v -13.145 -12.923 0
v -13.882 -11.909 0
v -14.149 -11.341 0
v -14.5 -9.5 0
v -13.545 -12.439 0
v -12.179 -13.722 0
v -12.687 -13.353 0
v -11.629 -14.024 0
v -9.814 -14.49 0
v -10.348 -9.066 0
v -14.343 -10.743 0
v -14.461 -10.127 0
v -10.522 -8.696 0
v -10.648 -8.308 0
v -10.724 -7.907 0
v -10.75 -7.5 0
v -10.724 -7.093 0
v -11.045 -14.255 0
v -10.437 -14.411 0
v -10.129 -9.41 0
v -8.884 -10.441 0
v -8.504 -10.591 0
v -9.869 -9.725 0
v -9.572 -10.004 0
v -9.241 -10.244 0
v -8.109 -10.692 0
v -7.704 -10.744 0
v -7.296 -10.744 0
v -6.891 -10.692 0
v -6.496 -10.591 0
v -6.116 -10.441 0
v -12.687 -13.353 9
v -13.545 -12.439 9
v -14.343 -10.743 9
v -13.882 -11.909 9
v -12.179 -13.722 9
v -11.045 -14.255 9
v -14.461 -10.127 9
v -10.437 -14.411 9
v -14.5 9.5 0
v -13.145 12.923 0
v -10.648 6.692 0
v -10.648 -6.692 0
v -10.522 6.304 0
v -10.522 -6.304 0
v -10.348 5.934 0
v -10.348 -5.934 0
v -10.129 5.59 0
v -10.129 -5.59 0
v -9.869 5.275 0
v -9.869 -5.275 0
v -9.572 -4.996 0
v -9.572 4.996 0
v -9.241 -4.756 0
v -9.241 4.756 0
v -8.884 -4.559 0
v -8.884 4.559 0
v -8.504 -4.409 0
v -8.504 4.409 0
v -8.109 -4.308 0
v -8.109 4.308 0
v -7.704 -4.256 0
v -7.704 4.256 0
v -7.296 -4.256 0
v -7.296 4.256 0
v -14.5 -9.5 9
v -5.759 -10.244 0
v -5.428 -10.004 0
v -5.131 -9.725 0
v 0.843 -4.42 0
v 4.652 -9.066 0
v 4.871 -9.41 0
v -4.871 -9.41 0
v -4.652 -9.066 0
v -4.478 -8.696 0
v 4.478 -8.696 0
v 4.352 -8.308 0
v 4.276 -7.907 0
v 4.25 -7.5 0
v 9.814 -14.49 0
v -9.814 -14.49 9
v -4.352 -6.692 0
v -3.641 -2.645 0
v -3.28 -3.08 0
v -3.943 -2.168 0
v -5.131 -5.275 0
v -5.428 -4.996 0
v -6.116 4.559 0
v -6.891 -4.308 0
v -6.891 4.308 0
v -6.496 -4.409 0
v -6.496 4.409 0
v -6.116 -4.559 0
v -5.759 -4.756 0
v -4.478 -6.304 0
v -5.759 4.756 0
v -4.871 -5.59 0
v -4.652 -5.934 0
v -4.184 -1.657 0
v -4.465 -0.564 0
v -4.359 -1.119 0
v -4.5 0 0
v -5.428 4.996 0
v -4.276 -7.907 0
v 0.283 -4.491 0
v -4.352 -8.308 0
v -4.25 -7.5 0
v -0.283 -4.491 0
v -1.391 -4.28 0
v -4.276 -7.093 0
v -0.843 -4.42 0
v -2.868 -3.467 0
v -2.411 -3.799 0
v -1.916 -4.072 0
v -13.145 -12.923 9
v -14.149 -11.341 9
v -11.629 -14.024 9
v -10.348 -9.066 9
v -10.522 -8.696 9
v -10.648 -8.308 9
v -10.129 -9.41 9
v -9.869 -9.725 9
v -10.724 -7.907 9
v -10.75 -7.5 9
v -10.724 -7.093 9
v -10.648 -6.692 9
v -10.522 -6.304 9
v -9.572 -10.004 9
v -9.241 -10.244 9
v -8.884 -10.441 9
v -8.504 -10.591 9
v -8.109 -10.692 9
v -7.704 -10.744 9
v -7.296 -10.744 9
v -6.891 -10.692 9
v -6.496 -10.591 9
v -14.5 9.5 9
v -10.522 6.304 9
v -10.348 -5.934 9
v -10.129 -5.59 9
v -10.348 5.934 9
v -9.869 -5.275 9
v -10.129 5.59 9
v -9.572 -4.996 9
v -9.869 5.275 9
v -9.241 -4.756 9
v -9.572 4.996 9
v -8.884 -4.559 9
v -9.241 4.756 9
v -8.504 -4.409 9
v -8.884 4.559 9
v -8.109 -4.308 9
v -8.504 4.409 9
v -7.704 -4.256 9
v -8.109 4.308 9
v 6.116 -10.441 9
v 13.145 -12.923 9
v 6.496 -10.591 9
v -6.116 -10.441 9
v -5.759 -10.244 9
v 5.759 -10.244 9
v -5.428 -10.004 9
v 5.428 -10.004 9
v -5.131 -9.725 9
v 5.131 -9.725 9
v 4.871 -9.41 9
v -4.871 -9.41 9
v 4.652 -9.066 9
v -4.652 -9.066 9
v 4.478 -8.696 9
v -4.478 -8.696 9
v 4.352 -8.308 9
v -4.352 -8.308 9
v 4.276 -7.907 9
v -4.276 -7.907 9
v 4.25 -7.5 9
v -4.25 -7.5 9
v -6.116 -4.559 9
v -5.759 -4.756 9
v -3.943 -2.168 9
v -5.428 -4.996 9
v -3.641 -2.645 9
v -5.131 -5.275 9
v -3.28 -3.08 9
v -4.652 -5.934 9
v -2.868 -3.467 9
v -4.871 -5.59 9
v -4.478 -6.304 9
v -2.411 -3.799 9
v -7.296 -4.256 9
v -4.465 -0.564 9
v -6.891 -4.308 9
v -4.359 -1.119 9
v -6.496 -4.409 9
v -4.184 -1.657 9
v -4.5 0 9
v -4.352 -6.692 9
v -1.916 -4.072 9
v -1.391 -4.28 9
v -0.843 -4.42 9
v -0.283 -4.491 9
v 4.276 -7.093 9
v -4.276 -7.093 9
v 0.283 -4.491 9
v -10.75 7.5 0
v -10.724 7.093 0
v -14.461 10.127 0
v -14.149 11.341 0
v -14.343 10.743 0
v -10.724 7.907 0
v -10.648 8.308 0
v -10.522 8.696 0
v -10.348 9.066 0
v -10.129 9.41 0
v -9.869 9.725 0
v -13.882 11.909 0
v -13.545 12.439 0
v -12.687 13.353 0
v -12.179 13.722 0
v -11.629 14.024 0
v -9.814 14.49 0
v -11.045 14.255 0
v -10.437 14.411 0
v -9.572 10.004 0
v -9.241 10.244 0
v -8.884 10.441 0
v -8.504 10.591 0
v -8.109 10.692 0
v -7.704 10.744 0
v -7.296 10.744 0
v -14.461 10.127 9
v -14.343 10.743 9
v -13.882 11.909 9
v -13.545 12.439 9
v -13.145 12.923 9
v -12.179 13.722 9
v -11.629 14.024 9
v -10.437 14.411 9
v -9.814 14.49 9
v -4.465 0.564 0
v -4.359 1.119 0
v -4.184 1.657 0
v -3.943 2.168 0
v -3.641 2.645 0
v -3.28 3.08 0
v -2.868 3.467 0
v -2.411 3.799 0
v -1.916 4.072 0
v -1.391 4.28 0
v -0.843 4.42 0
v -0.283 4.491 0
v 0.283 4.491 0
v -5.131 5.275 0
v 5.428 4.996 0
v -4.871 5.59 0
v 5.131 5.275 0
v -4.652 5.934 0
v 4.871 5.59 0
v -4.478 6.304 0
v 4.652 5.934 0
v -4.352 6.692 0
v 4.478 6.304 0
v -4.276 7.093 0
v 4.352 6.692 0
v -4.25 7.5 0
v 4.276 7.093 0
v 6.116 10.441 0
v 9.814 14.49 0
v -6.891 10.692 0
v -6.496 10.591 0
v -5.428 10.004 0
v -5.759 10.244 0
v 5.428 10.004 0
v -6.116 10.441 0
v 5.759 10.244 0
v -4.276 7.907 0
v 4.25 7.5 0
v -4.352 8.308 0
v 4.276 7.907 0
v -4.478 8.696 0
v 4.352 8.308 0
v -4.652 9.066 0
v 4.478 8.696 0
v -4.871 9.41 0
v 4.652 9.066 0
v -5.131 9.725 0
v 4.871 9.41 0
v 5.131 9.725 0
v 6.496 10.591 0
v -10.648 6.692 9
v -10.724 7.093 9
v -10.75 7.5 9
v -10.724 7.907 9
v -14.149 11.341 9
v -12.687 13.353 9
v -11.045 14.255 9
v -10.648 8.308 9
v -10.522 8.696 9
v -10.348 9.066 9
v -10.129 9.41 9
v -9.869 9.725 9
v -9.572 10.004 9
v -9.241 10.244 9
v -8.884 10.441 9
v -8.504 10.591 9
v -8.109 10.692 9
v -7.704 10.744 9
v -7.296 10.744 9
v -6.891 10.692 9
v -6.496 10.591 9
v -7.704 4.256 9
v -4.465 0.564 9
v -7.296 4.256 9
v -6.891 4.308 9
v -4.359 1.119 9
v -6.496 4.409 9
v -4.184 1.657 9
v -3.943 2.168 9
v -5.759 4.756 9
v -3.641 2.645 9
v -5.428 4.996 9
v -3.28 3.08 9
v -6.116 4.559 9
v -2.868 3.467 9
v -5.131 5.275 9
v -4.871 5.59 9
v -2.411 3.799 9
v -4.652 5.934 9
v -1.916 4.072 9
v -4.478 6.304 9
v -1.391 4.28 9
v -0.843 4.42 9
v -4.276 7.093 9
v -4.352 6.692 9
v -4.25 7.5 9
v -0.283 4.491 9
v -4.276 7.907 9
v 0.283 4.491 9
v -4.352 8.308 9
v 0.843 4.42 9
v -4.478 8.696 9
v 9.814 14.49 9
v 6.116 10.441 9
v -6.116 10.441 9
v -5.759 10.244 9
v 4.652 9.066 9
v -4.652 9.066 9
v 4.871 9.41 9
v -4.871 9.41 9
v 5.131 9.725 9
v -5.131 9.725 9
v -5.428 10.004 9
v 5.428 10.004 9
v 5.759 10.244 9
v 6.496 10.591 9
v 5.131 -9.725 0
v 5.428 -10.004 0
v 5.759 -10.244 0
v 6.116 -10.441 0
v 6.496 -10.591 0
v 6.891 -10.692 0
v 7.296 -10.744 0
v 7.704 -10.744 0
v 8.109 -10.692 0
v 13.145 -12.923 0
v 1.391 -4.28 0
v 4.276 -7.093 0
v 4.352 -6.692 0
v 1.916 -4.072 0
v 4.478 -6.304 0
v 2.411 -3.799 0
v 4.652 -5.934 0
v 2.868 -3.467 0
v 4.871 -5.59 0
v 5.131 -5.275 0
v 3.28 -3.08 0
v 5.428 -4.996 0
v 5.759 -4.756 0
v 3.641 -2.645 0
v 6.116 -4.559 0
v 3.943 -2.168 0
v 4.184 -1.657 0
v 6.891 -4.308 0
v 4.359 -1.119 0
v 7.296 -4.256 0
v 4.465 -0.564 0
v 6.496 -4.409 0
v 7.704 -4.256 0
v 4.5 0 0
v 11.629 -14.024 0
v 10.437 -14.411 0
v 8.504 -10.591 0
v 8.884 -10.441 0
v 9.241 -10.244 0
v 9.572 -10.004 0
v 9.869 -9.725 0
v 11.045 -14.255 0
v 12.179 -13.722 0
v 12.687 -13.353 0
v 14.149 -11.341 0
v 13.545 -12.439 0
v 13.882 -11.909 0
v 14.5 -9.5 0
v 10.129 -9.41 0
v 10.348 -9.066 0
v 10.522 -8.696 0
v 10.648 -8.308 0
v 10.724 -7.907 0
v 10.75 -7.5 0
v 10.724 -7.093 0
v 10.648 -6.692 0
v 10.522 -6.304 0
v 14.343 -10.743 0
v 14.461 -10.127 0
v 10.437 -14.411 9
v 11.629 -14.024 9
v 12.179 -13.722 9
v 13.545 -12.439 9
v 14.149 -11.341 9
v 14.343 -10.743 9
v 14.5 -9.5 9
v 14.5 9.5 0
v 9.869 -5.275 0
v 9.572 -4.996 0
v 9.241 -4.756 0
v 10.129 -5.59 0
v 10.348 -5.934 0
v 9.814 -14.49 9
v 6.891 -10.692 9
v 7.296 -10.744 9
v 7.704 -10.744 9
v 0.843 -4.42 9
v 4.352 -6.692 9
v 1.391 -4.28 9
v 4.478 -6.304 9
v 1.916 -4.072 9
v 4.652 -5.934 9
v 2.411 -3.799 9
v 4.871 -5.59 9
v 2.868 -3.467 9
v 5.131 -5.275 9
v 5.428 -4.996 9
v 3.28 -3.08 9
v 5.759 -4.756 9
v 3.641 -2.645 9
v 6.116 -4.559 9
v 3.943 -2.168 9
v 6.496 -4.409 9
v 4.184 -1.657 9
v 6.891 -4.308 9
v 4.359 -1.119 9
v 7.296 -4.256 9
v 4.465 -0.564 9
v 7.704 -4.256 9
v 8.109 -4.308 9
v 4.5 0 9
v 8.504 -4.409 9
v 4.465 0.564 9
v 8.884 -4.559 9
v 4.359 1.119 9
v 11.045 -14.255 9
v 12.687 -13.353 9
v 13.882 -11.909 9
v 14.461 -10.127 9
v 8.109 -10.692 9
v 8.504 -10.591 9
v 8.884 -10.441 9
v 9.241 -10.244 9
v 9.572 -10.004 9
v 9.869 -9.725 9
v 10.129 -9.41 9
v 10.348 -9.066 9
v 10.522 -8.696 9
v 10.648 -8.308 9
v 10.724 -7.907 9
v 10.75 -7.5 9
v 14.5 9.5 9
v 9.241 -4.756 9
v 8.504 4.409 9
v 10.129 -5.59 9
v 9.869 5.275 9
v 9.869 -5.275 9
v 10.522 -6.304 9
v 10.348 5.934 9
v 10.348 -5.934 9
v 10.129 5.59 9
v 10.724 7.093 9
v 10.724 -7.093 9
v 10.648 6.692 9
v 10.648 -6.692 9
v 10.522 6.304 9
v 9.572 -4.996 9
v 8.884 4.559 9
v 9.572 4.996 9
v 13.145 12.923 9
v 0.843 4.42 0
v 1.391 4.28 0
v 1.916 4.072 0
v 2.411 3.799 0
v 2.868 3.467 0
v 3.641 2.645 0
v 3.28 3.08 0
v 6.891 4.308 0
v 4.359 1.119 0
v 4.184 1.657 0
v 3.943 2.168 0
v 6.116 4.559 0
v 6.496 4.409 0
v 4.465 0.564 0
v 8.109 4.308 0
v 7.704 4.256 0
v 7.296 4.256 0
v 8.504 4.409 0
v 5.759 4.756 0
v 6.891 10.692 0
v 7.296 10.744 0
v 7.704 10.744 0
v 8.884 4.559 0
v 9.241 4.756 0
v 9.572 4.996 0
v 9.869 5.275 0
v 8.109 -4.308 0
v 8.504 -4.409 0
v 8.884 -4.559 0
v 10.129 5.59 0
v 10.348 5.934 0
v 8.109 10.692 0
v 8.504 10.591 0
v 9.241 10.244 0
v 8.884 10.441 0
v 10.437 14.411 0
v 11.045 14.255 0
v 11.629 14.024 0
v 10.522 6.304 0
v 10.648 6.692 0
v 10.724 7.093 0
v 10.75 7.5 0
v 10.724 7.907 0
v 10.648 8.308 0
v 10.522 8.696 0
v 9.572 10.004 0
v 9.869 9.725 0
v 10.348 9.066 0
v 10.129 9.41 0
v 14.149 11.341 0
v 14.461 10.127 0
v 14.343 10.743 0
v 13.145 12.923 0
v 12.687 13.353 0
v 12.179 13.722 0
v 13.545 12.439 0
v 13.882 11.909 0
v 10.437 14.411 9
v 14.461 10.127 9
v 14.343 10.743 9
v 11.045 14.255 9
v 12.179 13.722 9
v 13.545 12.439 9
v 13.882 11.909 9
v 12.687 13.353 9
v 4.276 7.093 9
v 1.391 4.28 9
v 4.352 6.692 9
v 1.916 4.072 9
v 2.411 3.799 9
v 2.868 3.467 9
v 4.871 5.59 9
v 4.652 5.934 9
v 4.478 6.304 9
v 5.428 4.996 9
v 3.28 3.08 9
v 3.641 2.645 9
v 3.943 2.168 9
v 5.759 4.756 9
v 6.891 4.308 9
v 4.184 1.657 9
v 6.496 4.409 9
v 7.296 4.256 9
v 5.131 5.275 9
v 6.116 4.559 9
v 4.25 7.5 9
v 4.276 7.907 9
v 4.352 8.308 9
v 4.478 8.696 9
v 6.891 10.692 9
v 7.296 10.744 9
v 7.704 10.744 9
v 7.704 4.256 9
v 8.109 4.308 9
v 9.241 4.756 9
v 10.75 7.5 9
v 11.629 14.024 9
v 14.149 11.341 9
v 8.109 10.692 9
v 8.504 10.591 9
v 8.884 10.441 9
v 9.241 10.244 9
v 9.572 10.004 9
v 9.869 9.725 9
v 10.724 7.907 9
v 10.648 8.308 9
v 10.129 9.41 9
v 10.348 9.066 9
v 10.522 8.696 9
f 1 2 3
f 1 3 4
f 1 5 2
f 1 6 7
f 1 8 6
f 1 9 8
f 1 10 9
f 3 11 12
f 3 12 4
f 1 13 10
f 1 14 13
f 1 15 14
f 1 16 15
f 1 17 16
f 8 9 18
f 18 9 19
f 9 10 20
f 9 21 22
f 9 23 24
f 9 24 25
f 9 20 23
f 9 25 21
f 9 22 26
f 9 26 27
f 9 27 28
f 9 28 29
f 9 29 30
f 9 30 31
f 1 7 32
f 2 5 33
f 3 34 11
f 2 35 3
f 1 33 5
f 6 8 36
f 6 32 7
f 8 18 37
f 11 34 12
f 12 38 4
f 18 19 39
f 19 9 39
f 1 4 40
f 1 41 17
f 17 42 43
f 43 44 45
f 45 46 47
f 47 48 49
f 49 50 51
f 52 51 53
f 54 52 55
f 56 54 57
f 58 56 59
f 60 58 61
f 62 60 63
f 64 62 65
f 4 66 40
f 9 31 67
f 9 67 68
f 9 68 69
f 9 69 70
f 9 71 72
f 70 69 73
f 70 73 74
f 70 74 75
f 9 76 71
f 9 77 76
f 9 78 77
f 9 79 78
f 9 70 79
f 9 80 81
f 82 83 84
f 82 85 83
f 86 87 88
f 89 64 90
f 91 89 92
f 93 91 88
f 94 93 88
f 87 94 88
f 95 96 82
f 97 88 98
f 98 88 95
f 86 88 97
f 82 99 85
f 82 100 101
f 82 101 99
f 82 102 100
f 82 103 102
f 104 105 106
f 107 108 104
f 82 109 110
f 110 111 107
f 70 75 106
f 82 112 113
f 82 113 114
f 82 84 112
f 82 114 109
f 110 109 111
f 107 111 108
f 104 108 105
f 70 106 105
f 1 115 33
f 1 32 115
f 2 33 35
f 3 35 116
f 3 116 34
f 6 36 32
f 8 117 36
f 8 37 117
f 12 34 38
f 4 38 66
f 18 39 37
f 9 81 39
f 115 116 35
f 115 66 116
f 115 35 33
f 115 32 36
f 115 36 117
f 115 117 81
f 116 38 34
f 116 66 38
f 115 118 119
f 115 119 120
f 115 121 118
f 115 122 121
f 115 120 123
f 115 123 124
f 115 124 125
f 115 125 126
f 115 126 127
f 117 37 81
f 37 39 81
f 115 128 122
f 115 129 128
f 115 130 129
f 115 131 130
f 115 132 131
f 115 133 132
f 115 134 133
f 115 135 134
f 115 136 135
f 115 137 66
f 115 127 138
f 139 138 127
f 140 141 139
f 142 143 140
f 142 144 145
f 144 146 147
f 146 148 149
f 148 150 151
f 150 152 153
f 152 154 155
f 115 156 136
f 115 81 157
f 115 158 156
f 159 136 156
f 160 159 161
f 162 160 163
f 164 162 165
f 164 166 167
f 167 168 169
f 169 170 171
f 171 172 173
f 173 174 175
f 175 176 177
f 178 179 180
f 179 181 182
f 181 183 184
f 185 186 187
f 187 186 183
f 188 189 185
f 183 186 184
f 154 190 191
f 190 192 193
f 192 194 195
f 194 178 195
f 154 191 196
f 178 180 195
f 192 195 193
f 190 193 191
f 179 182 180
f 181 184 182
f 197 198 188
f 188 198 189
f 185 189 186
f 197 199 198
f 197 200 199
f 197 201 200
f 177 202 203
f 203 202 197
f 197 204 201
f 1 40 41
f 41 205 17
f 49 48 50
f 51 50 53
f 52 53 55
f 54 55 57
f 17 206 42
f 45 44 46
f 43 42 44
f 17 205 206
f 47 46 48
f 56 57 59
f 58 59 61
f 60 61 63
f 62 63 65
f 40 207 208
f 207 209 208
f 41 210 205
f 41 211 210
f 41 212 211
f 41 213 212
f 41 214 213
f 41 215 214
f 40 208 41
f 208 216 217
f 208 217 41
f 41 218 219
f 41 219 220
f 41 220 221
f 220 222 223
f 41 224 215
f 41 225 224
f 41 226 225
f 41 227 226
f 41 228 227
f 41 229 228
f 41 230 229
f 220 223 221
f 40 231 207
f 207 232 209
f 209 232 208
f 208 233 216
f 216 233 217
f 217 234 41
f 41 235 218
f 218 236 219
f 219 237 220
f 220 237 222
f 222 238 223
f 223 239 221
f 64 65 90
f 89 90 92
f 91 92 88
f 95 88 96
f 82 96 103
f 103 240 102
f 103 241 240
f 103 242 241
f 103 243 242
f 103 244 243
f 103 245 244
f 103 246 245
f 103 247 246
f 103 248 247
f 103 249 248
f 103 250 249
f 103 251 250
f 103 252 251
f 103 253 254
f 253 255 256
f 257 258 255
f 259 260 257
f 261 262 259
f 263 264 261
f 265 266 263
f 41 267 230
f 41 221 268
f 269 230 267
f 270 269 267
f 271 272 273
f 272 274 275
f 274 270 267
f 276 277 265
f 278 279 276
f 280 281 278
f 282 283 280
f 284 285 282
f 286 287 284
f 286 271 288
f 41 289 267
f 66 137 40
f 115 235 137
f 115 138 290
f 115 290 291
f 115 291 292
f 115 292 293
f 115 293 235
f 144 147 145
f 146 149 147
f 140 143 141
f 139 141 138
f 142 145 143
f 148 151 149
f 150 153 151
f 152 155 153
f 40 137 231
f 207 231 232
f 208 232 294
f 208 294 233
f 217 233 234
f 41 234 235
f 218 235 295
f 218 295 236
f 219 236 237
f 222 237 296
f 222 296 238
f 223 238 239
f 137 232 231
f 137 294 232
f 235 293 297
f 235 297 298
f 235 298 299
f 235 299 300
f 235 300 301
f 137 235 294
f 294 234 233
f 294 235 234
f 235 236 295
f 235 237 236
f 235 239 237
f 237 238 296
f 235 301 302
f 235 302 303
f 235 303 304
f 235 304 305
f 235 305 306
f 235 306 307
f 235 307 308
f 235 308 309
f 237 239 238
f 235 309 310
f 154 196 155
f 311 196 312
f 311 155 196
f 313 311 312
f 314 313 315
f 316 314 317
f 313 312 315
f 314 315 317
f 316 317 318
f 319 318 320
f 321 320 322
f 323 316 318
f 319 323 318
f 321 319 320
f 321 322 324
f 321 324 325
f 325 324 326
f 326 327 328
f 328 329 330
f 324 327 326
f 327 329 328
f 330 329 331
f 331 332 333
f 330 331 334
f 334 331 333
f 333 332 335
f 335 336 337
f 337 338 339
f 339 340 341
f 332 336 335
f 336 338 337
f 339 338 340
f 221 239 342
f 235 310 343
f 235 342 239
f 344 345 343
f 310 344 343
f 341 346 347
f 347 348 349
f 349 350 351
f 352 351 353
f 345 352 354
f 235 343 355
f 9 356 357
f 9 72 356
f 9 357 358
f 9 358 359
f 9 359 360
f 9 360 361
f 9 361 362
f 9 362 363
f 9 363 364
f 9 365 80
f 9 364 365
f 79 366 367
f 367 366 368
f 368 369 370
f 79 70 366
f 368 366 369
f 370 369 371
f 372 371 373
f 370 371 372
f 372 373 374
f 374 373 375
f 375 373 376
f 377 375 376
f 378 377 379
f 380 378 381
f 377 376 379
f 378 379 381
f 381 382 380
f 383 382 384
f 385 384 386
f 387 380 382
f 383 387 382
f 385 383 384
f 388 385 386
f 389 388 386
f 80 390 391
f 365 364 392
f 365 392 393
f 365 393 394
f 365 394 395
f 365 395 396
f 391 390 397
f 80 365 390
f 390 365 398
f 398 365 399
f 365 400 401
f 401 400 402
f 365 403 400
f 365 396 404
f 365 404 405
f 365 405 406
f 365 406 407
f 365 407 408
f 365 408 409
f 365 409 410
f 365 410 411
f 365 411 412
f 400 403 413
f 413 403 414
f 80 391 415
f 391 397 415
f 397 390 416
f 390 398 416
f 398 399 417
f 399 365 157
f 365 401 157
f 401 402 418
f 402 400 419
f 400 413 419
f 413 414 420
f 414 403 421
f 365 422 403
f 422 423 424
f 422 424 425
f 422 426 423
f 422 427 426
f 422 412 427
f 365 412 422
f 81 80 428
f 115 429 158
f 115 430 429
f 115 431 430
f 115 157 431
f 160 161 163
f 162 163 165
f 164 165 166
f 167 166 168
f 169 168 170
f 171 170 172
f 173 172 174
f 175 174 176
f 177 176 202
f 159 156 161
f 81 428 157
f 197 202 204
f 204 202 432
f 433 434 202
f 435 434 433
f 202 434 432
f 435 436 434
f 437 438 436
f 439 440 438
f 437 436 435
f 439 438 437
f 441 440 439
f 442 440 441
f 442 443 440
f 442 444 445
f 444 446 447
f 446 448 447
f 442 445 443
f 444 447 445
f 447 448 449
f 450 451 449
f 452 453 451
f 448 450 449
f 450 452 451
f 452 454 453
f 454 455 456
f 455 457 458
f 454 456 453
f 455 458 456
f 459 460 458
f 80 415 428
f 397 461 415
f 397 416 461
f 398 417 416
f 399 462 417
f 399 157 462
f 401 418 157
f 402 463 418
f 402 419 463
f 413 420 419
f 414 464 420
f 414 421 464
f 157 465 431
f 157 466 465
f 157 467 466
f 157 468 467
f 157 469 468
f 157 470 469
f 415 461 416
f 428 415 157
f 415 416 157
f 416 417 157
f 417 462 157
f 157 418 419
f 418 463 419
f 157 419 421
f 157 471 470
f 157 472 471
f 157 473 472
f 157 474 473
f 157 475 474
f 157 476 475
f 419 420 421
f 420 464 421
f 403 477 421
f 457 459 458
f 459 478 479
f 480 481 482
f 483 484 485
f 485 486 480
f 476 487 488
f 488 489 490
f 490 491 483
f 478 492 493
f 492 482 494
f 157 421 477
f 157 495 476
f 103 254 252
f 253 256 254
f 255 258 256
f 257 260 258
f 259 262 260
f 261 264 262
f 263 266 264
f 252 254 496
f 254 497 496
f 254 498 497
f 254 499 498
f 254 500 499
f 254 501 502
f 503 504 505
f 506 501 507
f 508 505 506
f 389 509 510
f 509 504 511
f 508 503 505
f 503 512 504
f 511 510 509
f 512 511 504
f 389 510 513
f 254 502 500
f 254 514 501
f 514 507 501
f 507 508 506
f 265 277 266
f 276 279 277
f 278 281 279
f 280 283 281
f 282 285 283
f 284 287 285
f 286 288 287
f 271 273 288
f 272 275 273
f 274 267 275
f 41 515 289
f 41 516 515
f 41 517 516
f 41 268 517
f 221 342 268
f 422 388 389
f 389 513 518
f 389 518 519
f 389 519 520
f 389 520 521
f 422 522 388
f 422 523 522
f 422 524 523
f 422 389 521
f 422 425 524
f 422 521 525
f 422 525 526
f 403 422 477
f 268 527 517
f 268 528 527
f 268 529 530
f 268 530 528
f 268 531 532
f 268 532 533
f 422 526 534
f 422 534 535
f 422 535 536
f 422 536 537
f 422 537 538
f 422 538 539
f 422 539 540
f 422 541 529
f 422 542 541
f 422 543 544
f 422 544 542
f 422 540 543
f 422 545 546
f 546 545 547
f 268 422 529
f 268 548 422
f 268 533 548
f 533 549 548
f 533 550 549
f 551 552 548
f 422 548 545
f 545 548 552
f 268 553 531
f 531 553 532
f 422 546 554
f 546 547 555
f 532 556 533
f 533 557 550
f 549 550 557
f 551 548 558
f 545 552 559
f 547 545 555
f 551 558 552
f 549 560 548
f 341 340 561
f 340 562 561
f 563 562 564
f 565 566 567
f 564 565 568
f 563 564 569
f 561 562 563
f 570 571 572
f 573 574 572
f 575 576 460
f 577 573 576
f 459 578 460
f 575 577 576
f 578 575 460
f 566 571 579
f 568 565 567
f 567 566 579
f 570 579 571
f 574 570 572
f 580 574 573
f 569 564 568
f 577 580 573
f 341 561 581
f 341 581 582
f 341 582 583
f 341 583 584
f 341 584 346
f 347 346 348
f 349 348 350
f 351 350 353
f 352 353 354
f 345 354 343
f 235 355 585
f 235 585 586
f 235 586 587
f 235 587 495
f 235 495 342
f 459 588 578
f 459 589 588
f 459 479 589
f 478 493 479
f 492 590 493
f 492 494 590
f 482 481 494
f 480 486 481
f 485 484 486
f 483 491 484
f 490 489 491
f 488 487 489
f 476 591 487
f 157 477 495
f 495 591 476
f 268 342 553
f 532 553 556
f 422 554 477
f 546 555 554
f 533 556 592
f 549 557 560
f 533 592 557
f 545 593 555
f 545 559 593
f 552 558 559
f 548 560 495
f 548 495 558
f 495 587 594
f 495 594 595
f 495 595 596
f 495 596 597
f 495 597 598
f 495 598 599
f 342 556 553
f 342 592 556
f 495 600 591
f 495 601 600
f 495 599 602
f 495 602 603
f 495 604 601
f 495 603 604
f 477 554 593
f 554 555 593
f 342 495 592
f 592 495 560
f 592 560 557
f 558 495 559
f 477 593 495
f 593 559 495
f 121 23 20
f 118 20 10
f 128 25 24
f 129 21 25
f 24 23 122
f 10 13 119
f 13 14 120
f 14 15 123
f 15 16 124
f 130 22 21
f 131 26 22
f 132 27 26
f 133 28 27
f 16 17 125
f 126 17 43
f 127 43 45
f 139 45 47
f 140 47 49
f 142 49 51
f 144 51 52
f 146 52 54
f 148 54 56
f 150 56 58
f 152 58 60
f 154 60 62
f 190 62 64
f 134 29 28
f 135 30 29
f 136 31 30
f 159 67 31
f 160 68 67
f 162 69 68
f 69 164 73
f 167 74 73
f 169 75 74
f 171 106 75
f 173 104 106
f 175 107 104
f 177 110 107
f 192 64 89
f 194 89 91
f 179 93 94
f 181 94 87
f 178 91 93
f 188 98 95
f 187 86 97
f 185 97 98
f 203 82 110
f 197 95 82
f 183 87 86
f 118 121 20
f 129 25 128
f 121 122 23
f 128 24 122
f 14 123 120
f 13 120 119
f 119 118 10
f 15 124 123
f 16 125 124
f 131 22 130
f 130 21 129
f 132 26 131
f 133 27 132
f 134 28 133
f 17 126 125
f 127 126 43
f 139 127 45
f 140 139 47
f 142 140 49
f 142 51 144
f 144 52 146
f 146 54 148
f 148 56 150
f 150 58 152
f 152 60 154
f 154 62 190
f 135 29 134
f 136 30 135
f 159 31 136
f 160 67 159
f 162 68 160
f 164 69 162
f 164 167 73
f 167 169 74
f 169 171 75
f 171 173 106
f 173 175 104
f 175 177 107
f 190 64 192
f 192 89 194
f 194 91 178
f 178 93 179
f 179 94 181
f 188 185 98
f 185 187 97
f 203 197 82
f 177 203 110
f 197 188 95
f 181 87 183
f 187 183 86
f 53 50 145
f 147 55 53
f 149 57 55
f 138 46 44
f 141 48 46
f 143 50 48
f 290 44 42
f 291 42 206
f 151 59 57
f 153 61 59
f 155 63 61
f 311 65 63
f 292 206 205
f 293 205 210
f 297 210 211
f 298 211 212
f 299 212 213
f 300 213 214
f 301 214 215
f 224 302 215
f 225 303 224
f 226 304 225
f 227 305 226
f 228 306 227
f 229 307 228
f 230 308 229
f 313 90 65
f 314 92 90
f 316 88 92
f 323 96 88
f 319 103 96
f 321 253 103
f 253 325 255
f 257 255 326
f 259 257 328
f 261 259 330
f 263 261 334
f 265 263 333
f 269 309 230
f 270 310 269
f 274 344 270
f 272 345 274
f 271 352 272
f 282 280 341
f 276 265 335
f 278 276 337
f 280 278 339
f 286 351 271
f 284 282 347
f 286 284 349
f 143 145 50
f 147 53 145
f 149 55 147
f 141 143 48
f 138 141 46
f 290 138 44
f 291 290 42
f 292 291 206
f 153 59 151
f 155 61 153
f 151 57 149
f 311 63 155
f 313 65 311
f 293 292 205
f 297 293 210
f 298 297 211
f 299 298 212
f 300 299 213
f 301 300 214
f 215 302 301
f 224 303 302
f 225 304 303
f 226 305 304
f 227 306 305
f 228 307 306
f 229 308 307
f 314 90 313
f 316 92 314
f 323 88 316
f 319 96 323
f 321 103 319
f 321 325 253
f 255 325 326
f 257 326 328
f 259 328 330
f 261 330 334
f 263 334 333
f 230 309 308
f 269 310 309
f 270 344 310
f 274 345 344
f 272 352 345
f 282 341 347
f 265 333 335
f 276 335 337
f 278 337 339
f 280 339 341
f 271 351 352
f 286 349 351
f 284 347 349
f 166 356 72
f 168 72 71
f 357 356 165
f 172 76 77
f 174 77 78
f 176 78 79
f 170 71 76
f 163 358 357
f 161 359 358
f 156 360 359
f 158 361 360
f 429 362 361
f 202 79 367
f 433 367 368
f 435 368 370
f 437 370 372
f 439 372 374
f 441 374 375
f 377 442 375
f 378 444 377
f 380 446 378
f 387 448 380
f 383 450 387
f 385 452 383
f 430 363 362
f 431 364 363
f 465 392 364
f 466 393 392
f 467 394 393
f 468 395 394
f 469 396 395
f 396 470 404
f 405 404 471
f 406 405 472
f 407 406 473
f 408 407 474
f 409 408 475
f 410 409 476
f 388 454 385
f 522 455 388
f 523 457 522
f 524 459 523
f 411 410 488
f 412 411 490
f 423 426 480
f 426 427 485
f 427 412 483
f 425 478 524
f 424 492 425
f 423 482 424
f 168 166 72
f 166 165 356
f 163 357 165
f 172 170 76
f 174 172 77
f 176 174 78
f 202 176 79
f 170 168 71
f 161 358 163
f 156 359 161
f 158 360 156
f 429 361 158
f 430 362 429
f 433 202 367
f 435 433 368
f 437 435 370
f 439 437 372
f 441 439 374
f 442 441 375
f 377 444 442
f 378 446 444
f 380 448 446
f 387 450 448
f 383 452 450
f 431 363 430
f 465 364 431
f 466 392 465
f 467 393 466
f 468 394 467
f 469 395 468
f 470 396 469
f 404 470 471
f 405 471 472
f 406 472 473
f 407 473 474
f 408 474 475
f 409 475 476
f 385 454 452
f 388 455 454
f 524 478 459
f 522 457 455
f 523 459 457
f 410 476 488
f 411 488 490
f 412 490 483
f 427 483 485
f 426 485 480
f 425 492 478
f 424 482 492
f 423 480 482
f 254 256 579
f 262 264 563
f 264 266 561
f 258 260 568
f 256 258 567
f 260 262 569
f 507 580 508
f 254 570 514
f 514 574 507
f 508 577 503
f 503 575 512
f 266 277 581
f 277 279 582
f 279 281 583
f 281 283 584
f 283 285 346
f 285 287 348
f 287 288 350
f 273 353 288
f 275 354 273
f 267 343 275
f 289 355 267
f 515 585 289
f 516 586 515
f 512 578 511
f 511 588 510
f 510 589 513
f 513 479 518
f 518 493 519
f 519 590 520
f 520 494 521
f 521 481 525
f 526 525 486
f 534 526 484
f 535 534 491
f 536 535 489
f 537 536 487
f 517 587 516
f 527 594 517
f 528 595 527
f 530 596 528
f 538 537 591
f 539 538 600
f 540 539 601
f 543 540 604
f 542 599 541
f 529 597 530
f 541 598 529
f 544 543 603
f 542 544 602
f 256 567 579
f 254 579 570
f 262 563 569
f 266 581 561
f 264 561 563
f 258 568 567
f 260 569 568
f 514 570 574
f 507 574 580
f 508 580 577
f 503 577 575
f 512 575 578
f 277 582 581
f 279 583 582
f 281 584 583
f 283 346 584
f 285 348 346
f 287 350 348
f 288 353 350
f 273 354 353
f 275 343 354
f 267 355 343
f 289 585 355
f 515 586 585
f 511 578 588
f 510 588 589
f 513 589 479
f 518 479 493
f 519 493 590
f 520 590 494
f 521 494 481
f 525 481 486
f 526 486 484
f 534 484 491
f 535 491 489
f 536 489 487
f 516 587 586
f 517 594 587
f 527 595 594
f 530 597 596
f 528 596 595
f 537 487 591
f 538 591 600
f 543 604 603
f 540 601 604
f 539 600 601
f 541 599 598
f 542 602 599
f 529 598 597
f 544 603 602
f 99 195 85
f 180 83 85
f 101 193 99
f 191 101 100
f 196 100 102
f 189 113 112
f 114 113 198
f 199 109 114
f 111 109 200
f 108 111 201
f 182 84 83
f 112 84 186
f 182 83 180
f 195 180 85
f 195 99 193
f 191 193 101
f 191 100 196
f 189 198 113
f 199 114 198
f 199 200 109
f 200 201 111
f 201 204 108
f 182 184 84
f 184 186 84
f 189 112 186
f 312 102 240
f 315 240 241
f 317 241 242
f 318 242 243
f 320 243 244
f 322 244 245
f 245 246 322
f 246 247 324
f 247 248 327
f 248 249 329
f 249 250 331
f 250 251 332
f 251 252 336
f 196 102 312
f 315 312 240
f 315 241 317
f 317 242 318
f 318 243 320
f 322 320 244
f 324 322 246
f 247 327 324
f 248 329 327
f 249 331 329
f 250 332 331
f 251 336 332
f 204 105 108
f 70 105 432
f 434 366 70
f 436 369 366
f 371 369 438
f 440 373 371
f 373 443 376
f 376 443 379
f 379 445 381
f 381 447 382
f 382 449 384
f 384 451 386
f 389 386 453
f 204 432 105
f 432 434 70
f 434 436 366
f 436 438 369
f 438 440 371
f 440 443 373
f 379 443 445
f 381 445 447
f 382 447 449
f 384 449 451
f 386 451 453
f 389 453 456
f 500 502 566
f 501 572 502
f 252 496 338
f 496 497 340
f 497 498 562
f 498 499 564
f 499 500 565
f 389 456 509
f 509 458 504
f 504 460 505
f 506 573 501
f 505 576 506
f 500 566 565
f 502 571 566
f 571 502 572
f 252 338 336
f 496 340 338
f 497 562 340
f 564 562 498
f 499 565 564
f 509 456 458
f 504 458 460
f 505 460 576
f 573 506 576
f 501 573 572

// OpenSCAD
$fn = 50;

difference() {
	union() {
		hull() {
			translate(v = [-9.5, 9.5, 0]) {
				cylinder(h = 9, r = 5);
			}
			translate(v = [9.5, 9.5, 0]) {
				cylinder(h = 9, r = 5);
			}
			translate(v = [-9.5, -9.5, 0]) {
				cylinder(h = 9, r = 5);
			}
			translate(v = [9.5, -9.5, 0]) {
				cylinder(h = 9, r = 5);
			}
		}
	}
	union() {
		translate(v = [-7.5, -7.5, -100.0]) {
			cylinder(h = 200, r = 3.25);
		}
		translate(v = [-7.5, 7.5, -100.0]) {
			cylinder(h = 200, r = 3.25);
		}
		translate(v = [7.5, -7.5, -100.0]) {
			cylinder(h = 200, r = 3.25);
		}
		translate(v = [7.5, 7.5, -100.0]) {
			cylinder(h = 200, r = 3.25);
		}
		translate(v = [-7.5, -7.5, -100.0]) {
			cylinder(h = 200, r = 1.8);
		}
		translate(v = [-7.5, 7.5, -100.0]) {
			cylinder(h = 200, r = 1.8);
		}
		translate(v = [7.5, -7.5, -100.0]) {
			cylinder(h = 200, r = 1.8);
		}
		translate(v = [7.5, 7.5, -100.0]) {
			cylinder(h = 200, r = 1.8);
		}
		cylinder(h = 9, r = 4.5);
	}
}
